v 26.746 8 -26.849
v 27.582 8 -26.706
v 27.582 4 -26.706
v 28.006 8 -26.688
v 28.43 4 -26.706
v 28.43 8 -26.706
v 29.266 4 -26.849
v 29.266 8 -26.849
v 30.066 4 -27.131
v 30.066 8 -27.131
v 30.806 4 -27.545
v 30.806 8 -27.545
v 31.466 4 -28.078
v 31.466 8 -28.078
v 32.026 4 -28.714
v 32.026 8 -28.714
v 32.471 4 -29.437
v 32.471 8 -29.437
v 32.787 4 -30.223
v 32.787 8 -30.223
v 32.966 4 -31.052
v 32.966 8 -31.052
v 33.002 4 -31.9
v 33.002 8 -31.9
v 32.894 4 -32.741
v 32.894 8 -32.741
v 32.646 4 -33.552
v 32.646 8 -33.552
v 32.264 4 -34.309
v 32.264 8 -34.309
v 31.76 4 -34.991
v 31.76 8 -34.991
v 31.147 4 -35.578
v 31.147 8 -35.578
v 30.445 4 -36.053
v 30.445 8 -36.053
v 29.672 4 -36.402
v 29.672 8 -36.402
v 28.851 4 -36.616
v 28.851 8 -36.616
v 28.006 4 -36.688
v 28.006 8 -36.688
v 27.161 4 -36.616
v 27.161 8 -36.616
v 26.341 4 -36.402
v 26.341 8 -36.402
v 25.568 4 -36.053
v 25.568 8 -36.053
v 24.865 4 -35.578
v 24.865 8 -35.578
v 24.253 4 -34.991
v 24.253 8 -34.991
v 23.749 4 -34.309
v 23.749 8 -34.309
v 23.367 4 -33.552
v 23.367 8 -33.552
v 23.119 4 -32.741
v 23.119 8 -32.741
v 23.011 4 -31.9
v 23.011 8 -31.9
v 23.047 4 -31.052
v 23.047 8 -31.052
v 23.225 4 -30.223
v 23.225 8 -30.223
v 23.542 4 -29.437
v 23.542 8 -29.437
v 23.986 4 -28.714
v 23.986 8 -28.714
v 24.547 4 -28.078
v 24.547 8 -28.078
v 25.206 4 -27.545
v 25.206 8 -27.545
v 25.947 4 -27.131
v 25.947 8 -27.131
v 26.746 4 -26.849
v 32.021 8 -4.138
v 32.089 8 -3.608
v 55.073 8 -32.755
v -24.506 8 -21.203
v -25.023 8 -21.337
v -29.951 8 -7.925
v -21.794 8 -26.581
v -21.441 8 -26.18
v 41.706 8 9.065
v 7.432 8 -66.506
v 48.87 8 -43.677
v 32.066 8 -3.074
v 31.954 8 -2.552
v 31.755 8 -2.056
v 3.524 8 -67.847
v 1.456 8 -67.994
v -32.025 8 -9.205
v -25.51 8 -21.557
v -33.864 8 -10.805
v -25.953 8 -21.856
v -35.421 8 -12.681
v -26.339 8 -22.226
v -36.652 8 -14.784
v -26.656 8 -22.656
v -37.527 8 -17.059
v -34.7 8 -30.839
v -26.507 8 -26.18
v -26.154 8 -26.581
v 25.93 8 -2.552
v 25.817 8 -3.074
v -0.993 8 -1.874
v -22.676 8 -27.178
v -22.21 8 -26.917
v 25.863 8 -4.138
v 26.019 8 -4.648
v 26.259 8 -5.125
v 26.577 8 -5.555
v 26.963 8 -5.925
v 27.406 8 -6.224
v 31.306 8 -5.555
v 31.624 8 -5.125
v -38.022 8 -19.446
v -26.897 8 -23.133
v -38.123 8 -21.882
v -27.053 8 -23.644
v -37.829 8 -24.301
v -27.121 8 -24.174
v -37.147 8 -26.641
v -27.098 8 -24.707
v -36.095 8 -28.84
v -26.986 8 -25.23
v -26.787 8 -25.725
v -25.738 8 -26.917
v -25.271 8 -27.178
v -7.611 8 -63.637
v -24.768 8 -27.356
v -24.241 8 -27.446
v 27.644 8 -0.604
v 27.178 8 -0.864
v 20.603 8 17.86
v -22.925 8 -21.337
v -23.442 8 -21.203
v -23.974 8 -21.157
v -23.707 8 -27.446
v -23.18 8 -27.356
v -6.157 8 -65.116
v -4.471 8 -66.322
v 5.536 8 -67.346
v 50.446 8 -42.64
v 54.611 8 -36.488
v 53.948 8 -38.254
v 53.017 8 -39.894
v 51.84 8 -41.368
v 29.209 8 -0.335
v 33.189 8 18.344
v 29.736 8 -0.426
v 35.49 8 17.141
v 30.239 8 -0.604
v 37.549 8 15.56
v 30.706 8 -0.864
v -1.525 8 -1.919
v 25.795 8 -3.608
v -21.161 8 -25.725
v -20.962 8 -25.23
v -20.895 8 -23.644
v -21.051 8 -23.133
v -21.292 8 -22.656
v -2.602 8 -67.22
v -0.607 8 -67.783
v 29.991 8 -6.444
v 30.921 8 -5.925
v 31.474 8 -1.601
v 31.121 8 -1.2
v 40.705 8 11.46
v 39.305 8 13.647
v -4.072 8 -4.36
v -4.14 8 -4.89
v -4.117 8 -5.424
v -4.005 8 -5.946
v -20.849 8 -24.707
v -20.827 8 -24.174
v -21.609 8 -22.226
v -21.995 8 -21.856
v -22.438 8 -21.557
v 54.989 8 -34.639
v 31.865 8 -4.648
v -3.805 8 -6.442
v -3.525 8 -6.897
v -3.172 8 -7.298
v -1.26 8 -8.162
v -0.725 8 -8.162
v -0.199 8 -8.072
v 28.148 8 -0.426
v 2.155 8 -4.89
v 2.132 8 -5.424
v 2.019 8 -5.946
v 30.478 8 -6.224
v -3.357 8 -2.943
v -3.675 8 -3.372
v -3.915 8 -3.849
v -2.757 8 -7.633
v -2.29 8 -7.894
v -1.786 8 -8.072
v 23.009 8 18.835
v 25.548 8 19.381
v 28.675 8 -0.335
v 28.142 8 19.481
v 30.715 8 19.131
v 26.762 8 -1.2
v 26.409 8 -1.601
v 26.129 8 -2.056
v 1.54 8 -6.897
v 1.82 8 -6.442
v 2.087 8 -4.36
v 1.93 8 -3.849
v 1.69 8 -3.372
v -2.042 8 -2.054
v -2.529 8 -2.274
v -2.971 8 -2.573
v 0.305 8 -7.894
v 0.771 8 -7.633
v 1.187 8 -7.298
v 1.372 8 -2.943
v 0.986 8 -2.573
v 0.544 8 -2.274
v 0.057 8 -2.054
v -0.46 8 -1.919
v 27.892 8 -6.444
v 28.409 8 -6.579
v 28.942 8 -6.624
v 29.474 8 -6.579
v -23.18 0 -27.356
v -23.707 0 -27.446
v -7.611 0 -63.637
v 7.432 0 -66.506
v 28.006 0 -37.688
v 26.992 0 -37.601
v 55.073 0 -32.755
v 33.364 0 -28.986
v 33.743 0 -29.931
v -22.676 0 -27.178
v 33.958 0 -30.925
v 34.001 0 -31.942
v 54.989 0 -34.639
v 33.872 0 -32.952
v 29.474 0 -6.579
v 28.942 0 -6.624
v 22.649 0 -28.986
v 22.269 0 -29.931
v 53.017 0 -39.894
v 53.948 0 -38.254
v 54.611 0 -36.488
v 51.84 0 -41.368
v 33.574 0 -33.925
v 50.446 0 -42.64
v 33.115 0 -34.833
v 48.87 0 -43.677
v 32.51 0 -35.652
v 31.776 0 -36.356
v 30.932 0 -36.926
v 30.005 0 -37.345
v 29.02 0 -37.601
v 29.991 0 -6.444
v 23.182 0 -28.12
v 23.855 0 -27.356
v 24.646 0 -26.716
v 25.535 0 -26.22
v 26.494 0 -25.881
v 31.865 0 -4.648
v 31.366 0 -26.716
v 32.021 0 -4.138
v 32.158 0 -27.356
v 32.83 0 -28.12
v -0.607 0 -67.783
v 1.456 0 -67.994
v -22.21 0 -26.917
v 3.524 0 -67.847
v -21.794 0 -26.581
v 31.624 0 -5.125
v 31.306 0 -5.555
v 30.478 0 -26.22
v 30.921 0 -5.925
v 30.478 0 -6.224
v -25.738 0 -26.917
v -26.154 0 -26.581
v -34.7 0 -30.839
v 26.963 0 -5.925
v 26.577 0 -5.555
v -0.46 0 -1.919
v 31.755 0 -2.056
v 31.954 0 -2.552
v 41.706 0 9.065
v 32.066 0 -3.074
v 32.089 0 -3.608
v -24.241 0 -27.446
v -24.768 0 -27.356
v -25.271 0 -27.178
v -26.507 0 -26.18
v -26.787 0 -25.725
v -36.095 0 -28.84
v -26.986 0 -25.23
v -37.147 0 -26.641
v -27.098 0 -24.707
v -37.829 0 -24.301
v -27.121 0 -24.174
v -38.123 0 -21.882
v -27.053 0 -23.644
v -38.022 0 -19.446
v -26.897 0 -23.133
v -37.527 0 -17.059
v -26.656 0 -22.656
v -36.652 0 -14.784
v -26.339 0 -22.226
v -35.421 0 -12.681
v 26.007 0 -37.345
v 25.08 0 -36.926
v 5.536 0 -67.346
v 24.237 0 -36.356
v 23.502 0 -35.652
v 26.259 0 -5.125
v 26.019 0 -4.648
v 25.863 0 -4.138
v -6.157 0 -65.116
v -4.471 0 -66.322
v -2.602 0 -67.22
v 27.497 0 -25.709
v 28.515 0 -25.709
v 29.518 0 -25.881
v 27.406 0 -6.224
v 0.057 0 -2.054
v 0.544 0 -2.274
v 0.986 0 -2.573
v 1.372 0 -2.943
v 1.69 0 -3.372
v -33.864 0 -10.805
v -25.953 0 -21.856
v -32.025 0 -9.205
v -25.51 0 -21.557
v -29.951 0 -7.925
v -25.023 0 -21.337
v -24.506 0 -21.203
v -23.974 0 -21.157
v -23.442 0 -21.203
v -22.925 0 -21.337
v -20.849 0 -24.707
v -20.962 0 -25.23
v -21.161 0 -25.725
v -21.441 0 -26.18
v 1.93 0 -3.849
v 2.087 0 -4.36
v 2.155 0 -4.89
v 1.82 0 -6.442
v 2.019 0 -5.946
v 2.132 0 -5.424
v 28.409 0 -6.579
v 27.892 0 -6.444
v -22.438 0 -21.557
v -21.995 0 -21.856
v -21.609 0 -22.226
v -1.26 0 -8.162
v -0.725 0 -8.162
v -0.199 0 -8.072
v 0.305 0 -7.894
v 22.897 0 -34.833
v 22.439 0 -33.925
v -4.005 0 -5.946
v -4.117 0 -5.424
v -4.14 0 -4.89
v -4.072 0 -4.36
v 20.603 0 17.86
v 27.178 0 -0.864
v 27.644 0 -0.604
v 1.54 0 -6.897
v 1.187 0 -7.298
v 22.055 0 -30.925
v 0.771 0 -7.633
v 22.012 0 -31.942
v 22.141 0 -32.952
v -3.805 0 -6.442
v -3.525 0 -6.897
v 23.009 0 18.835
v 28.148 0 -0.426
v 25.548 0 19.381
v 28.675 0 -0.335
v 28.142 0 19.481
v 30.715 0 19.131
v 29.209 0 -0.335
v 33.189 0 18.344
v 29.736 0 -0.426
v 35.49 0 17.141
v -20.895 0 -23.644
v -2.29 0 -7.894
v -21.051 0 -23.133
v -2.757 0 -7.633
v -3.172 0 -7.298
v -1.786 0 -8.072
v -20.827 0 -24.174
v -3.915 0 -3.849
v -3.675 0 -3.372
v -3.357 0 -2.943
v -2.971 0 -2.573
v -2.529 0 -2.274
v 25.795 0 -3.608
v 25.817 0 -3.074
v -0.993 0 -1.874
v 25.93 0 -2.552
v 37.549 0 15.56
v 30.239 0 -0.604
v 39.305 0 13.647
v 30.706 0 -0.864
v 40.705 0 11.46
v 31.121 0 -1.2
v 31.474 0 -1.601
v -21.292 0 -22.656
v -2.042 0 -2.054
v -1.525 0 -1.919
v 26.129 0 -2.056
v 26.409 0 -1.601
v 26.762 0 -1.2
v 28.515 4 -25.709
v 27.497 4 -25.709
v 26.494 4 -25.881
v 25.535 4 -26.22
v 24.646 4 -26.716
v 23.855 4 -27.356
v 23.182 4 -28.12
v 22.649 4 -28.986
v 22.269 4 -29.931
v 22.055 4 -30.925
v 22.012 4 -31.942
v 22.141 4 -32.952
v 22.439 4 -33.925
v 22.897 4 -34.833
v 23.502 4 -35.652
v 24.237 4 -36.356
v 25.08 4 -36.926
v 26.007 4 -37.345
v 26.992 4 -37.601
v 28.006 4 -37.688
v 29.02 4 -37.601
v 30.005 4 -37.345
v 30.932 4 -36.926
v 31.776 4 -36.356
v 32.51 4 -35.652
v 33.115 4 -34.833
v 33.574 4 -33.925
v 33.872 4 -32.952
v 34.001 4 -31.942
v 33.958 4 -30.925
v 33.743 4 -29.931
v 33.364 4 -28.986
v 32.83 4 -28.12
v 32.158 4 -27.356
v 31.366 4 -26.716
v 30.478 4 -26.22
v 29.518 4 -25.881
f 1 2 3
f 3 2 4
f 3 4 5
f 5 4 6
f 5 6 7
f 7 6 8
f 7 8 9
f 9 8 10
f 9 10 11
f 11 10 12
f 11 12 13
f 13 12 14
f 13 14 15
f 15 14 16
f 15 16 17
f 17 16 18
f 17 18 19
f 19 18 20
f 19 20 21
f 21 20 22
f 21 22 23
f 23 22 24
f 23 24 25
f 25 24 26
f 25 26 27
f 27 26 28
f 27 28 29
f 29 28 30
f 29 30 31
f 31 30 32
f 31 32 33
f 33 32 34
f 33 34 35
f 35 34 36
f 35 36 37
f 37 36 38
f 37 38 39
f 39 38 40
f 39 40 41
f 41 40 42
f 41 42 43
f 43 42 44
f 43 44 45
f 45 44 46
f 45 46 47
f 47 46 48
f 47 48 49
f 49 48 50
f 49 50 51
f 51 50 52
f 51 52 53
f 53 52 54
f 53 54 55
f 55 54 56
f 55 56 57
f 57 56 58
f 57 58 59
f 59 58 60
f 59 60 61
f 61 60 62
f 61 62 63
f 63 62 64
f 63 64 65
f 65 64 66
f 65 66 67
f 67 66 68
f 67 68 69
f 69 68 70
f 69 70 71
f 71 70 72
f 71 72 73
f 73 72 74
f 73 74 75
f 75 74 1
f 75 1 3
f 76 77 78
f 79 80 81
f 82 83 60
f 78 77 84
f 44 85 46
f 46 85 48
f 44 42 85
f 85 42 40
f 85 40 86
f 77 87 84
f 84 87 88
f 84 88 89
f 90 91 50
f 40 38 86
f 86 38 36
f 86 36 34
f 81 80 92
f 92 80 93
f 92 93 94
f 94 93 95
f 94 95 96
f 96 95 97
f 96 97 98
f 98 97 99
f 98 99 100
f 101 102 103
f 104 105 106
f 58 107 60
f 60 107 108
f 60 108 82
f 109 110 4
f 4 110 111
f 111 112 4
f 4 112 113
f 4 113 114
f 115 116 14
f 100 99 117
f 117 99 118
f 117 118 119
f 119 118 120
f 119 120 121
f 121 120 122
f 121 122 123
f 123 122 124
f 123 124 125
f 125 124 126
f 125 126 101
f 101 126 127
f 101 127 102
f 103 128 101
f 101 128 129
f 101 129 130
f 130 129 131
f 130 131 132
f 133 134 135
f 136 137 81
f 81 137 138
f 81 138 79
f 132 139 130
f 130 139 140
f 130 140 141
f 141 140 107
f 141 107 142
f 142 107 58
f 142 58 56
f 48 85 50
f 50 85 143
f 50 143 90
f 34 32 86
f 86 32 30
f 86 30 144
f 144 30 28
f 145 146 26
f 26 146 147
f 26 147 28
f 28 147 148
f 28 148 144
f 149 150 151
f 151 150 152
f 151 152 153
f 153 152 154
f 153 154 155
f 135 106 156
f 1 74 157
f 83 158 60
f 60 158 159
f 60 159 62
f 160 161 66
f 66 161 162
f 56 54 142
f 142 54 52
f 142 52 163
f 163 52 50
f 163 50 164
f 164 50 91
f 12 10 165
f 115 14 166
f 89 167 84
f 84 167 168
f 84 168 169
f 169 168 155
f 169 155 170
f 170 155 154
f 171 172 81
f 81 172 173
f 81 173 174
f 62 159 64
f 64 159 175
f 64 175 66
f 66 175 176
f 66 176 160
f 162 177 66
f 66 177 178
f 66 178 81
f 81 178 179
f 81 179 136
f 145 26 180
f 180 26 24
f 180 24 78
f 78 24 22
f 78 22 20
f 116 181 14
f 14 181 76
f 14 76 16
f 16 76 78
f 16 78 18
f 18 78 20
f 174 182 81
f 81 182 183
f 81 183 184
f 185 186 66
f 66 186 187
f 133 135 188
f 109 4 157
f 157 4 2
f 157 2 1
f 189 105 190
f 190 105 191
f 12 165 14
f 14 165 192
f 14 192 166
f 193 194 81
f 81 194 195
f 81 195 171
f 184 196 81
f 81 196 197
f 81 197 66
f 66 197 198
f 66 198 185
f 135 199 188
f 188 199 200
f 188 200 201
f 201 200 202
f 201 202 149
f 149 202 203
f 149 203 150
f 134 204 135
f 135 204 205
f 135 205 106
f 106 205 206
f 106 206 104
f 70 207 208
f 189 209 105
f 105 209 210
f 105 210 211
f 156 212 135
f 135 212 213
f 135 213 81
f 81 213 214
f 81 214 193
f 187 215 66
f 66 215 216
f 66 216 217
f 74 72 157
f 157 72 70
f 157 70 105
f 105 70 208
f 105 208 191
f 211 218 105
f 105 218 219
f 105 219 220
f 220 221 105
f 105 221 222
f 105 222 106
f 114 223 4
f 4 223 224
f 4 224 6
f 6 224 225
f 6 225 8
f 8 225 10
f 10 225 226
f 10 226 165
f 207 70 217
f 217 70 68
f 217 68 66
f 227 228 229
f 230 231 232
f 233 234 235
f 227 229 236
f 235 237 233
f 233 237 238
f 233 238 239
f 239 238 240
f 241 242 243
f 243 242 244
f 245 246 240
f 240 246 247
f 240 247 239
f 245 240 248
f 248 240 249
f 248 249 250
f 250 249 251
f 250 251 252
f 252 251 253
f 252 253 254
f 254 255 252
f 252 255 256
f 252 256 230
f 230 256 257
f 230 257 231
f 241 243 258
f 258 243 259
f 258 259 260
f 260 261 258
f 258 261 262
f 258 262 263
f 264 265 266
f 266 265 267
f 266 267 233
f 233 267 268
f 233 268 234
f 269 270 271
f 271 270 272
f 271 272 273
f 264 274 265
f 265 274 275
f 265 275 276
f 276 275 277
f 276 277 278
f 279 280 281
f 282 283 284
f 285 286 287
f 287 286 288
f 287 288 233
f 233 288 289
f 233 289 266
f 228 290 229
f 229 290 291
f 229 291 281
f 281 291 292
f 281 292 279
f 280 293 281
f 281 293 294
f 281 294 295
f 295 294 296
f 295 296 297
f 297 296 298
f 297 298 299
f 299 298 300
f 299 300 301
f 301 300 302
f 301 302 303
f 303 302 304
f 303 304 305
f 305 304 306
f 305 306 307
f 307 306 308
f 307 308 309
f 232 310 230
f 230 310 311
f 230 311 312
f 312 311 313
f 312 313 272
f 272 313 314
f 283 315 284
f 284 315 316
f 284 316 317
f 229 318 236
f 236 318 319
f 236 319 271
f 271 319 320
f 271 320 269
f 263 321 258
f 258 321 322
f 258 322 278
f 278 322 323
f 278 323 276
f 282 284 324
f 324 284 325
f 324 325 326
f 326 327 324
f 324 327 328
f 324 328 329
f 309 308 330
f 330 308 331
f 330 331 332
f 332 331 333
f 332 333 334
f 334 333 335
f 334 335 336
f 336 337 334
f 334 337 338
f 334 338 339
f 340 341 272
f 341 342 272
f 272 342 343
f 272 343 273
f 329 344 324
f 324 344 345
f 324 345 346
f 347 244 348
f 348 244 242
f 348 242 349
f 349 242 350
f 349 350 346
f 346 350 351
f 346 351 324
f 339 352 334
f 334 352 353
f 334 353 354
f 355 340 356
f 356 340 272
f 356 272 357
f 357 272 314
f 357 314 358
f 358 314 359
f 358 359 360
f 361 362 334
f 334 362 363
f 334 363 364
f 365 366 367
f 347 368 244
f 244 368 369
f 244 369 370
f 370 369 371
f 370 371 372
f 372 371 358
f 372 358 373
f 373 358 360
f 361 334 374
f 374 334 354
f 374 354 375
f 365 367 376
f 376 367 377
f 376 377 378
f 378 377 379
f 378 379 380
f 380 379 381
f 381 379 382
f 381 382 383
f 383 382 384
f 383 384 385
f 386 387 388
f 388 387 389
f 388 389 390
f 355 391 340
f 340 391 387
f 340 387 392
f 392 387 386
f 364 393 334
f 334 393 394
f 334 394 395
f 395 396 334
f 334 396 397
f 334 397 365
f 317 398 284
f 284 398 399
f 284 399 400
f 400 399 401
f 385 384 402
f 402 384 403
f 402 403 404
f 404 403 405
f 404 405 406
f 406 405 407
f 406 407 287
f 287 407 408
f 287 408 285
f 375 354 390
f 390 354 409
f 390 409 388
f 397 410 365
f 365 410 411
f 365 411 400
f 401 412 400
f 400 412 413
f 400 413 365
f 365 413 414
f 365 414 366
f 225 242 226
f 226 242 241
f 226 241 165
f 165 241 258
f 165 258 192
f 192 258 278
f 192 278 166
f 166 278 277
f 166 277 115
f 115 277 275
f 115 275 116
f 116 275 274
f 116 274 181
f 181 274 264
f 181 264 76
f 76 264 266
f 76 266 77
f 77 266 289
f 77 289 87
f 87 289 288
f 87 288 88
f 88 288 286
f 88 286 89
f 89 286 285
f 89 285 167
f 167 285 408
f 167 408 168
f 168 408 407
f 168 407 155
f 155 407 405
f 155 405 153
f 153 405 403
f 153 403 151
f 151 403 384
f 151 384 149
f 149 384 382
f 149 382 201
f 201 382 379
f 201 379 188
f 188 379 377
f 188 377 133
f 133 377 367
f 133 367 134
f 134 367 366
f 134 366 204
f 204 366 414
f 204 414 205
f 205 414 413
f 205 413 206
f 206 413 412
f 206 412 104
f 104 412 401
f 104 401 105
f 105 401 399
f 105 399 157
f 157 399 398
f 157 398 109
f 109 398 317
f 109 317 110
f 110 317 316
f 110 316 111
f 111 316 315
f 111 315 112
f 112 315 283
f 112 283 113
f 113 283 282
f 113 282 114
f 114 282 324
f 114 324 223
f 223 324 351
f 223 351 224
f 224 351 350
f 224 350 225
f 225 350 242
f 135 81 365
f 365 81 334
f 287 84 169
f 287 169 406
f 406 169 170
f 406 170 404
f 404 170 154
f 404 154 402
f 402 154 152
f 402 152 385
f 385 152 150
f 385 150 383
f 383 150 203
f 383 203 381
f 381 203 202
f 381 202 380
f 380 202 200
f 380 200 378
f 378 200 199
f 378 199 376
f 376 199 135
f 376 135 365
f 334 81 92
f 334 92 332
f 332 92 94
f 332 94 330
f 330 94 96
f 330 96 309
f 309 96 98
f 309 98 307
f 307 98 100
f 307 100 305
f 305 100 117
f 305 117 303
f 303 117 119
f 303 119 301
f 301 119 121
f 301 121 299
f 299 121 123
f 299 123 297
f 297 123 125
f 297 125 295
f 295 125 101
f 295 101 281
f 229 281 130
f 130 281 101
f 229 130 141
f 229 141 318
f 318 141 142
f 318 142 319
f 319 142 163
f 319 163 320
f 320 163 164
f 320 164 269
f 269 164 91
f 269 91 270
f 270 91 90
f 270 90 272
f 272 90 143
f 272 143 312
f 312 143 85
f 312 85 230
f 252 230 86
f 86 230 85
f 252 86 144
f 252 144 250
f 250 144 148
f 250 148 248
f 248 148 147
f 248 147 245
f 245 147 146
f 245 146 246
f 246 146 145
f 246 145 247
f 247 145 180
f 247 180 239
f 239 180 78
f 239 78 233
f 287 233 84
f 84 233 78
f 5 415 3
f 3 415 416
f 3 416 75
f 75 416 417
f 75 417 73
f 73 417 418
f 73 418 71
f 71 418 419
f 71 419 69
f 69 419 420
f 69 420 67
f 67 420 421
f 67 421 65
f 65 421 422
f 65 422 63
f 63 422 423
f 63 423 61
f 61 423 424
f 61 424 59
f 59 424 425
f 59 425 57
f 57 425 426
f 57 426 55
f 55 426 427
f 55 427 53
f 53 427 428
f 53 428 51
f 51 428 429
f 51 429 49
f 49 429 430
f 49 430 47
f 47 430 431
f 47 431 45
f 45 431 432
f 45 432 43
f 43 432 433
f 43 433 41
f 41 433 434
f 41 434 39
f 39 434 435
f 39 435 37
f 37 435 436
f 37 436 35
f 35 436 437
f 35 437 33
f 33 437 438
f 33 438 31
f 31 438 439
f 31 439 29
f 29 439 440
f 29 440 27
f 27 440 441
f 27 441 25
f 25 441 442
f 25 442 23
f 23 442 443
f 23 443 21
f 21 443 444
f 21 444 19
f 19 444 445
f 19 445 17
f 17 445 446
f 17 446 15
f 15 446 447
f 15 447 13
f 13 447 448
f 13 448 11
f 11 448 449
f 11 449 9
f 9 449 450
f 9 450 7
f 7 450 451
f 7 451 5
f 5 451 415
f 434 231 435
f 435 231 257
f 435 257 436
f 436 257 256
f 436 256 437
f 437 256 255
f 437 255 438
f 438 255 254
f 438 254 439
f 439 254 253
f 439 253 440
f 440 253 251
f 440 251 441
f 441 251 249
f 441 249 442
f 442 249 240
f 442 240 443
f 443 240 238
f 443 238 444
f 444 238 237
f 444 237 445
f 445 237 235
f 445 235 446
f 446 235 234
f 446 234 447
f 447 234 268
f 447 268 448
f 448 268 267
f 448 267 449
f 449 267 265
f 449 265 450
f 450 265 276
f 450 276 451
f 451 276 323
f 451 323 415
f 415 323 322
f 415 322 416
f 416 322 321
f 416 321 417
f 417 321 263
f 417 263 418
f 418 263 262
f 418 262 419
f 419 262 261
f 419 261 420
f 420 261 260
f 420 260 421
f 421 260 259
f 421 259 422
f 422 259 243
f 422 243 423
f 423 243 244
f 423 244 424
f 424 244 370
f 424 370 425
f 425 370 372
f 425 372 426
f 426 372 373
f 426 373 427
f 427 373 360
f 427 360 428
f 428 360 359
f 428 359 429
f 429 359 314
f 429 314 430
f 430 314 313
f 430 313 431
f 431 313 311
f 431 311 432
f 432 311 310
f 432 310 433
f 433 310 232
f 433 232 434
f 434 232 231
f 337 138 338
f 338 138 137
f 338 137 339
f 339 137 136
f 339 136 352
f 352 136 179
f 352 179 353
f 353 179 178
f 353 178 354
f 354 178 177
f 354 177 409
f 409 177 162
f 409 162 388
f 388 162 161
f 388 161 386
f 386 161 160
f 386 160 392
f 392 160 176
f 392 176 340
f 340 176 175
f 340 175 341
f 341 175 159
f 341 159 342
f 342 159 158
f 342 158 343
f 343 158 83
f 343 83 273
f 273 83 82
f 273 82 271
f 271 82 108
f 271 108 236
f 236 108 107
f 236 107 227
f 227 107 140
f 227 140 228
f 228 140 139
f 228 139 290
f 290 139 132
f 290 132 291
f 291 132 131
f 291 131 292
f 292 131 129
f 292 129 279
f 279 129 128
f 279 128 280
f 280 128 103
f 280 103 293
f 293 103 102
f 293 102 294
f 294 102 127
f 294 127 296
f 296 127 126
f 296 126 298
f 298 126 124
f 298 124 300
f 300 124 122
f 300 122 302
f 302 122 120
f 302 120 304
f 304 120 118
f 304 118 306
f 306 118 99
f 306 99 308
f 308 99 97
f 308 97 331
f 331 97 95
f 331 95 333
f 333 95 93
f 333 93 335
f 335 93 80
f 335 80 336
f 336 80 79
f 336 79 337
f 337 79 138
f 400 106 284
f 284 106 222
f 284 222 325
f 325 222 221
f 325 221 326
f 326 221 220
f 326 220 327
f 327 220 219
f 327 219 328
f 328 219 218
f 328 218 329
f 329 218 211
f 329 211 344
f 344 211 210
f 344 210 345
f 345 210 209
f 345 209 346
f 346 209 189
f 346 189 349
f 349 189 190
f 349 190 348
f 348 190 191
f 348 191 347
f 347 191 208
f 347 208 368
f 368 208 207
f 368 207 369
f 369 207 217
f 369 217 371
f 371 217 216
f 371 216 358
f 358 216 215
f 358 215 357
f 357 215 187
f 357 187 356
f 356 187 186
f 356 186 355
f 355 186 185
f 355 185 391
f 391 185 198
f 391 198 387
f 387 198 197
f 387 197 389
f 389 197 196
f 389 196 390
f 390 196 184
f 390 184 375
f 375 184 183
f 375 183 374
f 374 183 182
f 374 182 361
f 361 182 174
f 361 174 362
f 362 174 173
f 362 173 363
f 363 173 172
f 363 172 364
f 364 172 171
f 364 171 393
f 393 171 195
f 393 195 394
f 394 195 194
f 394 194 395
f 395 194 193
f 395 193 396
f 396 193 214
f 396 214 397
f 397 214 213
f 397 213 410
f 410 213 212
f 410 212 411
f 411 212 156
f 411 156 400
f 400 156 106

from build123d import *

# Parameters (mm, degrees)
BOSS_EXTRUDE2_DEPTH = 8
CUT_EXTRUDE5_DEPTH  = 18.5
BOSS_EXTRUDE7_DEPTH = 8
SKETCH9_R           = 3.15
CUT_EXTRUDE6_DEPTH  = 8
CUT_EXTRUDE8_DEPTH  = 8
BOSS_EXTRUDE8_DEPTH = 8
SKETCH14_R          = 5
CUT_EXTRUDE10_DEPTH = 10
SKETCH15_R          = 6
CUT_EXTRUDE11_DEPTH = 4
SKETCH2_R           = 3.15
CUT_EXTRUDE12_DEPTH = 48


with BuildPart() as part:
    # Sketch1 → Boss-Extrude2 (new body)
    with BuildSketch(Plane(origin=(0, 0, 0), x_dir=(1, 0, 0), z_dir=(0, 1, 0))):
        Polygon((-36.064195387, 30.19821093), (-36.064195387, 45.055140387), (-24.456215945, 60.508200645), (25.928290152, 75.028423128), (63.192701615, 49.978777876), (57.8600206, 4.654046233), (5.024212079, -12.575443702), (-26.79369062, -0.934399252), align=None)
    extrude(amount=BOSS_EXTRUDE2_DEPTH)

    # Sketch7 → Cut-Extrude5 (cut)
    with BuildSketch(Plane(origin=(0, 8, 0), x_dir=(1, 0, 0), z_dir=(0, 1, 0))):
        Polygon((-23.90080129, 101.032848336), (-57.901406204, 20.736967462), (-18.158957139, -32.533824917), (87.924213713, -9.961236853), (85.311975199, 49.315634488), align=None)
        Polygon((-40.820623888, 23.42964982), (-5.371906334, -12.019067733), (42.940552226, -17.400063196), (73.057764711, 41.083606285), (-8.197554073, 82.927487203), align=None, mode=Mode.SUBTRACT)
    extrude(amount=-CUT_EXTRUDE5_DEPTH, mode=Mode.SUBTRACT)

    # Sketch8 → Boss-Extrude7 (add)
    with BuildSketch(Plane(origin=(0, 8, 0), x_dir=(1, 0, 0), z_dir=(0, 1, 0))):
        Polygon((-8.197554073, 82.927487203), (-40.820623888, 23.42964982), (-5.371906334, -12.019067733), (42.940552226, -17.400063196), (73.057764711, 41.083606285), align=None)
        Polygon((7.41963674, 62.005546744), (-9.746922841, 64.747246038), (-32.401642497, 23.42964982), (0, -4.674812176), (46.197479834, 11.841771544), (56.025503799, 35.943618774), align=None, mode=Mode.SUBTRACT)
    extrude(amount=-BOSS_EXTRUDE7_DEPTH)

    # Sketch9 → Cut-Extrude6 (cut)
    with BuildSketch(Plane(origin=(0, 0, 0), x_dir=(-1, 0, 0), z_dir=(0, -1, 0))):
        with Locations((-28.941808693, 3.473889793)):
            Circle(SKETCH9_R)
    extrude(amount=-CUT_EXTRUDE6_DEPTH, mode=Mode.SUBTRACT)

    # Sketch10 → Cut-Extrude8 (cut)
    with BuildSketch(Plane(origin=(0, 8, 0), x_dir=(1, 0, 0), z_dir=(0, 1, 0))):
        Polygon((-51.027907223, 26.499697203), (-18.337970987, 89.979258173), (70.618900133, 64.73001084), (85.862243499, 8.329361683), (41.198193823, -31.646717715), (-23.676019088, -9.814381331), align=None)
        with BuildLine():
            Line((-33.872566493, 31.841833363), (-7.610913822, 63.637460521))
            ThreePointArc((-7.610913822, 63.637460521), (-0.606725689, 67.783190008), (7.431616747, 66.506171896))
            Line((7.431616747, 66.506171896), (48.870452229, 43.677060264))
            ThreePointArc((48.870452229, 43.677060264), (53.514897305, 39.092266426), (55.073012074, 32.754799821))
            Line((55.073012074, 32.754799821), (41.706263242, -9.064889609))
            ThreePointArc((41.706263242, -9.064889609), (33.18888877, -18.343686498), (20.602861854, -17.860296318))
            Line((20.602861854, -17.860296318), (-29.950777497, 7.924950794))
            ThreePointArc((-29.950777497, 7.924950794), (-37.823070784, 18.242703419), (-34.700474084, 30.839465332))
            Line((-34.700474084, 30.839465332), (-33.872566493, 31.841833363))
        make_face(mode=Mode.SUBTRACT)
    extrude(amount=-CUT_EXTRUDE8_DEPTH, mode=Mode.SUBTRACT)

    # Sketch12 → Boss-Extrude8 (add)
    with BuildSketch(Plane(origin=(0, 8, 0), x_dir=(1, 0, 0), z_dir=(0, 1, 0))):
        with BuildLine():
            Line((-34.700474084, 30.839465332), (-23.799416497, 10.878604368))
            Line((-23.799416497, 10.878604368), (16.273254251, -10.775107124))
            Line((16.273254251, -10.775107124), (41.706263242, -9.064889609))
            ThreePointArc((41.706263242, -9.064889609), (33.18888877, -18.343686498), (20.602861854, -17.860296318))
            Line((20.602861854, -17.860296318), (-29.950777497, 7.924950794))
            ThreePointArc((-29.950777497, 7.924950794), (-37.823070784, 18.242703419), (-34.700474084, 30.839465332))
        make_face()
    extrude(amount=-BOSS_EXTRUDE8_DEPTH)

    # Sketch14 → Cut-Extrude10 (cut)
    with BuildSketch(Plane(origin=(0, 0, 0), x_dir=(-1, 0, 0), z_dir=(0, -1, 0))):
        with Locations((-28.006293823, 31.687531628)):
            Circle(SKETCH14_R)
    extrude(amount=-CUT_EXTRUDE10_DEPTH, mode=Mode.SUBTRACT)

    # Sketch15 → Cut-Extrude11 (cut)
    with BuildSketch(Plane.XZ):
        with Locations((28.006293823, -31.687531628)):
            Circle(SKETCH15_R)
    extrude(amount=-CUT_EXTRUDE11_DEPTH, mode=Mode.SUBTRACT)

    # Sketch2 → Cut-Extrude12 (cut)
    with BuildSketch(Plane(origin=(0, 8, 0), x_dir=(1, 0, 0), z_dir=(0, 1, 0))):
        with Locations((-0.992606529, 5.023658057)):
            Circle(SKETCH2_R)
        with Locations((-23.973939823, 24.307286348)):
            Circle(SKETCH2_R)
    extrude(amount=-CUT_EXTRUDE12_DEPTH, mode=Mode.SUBTRACT)


solid = part.part
